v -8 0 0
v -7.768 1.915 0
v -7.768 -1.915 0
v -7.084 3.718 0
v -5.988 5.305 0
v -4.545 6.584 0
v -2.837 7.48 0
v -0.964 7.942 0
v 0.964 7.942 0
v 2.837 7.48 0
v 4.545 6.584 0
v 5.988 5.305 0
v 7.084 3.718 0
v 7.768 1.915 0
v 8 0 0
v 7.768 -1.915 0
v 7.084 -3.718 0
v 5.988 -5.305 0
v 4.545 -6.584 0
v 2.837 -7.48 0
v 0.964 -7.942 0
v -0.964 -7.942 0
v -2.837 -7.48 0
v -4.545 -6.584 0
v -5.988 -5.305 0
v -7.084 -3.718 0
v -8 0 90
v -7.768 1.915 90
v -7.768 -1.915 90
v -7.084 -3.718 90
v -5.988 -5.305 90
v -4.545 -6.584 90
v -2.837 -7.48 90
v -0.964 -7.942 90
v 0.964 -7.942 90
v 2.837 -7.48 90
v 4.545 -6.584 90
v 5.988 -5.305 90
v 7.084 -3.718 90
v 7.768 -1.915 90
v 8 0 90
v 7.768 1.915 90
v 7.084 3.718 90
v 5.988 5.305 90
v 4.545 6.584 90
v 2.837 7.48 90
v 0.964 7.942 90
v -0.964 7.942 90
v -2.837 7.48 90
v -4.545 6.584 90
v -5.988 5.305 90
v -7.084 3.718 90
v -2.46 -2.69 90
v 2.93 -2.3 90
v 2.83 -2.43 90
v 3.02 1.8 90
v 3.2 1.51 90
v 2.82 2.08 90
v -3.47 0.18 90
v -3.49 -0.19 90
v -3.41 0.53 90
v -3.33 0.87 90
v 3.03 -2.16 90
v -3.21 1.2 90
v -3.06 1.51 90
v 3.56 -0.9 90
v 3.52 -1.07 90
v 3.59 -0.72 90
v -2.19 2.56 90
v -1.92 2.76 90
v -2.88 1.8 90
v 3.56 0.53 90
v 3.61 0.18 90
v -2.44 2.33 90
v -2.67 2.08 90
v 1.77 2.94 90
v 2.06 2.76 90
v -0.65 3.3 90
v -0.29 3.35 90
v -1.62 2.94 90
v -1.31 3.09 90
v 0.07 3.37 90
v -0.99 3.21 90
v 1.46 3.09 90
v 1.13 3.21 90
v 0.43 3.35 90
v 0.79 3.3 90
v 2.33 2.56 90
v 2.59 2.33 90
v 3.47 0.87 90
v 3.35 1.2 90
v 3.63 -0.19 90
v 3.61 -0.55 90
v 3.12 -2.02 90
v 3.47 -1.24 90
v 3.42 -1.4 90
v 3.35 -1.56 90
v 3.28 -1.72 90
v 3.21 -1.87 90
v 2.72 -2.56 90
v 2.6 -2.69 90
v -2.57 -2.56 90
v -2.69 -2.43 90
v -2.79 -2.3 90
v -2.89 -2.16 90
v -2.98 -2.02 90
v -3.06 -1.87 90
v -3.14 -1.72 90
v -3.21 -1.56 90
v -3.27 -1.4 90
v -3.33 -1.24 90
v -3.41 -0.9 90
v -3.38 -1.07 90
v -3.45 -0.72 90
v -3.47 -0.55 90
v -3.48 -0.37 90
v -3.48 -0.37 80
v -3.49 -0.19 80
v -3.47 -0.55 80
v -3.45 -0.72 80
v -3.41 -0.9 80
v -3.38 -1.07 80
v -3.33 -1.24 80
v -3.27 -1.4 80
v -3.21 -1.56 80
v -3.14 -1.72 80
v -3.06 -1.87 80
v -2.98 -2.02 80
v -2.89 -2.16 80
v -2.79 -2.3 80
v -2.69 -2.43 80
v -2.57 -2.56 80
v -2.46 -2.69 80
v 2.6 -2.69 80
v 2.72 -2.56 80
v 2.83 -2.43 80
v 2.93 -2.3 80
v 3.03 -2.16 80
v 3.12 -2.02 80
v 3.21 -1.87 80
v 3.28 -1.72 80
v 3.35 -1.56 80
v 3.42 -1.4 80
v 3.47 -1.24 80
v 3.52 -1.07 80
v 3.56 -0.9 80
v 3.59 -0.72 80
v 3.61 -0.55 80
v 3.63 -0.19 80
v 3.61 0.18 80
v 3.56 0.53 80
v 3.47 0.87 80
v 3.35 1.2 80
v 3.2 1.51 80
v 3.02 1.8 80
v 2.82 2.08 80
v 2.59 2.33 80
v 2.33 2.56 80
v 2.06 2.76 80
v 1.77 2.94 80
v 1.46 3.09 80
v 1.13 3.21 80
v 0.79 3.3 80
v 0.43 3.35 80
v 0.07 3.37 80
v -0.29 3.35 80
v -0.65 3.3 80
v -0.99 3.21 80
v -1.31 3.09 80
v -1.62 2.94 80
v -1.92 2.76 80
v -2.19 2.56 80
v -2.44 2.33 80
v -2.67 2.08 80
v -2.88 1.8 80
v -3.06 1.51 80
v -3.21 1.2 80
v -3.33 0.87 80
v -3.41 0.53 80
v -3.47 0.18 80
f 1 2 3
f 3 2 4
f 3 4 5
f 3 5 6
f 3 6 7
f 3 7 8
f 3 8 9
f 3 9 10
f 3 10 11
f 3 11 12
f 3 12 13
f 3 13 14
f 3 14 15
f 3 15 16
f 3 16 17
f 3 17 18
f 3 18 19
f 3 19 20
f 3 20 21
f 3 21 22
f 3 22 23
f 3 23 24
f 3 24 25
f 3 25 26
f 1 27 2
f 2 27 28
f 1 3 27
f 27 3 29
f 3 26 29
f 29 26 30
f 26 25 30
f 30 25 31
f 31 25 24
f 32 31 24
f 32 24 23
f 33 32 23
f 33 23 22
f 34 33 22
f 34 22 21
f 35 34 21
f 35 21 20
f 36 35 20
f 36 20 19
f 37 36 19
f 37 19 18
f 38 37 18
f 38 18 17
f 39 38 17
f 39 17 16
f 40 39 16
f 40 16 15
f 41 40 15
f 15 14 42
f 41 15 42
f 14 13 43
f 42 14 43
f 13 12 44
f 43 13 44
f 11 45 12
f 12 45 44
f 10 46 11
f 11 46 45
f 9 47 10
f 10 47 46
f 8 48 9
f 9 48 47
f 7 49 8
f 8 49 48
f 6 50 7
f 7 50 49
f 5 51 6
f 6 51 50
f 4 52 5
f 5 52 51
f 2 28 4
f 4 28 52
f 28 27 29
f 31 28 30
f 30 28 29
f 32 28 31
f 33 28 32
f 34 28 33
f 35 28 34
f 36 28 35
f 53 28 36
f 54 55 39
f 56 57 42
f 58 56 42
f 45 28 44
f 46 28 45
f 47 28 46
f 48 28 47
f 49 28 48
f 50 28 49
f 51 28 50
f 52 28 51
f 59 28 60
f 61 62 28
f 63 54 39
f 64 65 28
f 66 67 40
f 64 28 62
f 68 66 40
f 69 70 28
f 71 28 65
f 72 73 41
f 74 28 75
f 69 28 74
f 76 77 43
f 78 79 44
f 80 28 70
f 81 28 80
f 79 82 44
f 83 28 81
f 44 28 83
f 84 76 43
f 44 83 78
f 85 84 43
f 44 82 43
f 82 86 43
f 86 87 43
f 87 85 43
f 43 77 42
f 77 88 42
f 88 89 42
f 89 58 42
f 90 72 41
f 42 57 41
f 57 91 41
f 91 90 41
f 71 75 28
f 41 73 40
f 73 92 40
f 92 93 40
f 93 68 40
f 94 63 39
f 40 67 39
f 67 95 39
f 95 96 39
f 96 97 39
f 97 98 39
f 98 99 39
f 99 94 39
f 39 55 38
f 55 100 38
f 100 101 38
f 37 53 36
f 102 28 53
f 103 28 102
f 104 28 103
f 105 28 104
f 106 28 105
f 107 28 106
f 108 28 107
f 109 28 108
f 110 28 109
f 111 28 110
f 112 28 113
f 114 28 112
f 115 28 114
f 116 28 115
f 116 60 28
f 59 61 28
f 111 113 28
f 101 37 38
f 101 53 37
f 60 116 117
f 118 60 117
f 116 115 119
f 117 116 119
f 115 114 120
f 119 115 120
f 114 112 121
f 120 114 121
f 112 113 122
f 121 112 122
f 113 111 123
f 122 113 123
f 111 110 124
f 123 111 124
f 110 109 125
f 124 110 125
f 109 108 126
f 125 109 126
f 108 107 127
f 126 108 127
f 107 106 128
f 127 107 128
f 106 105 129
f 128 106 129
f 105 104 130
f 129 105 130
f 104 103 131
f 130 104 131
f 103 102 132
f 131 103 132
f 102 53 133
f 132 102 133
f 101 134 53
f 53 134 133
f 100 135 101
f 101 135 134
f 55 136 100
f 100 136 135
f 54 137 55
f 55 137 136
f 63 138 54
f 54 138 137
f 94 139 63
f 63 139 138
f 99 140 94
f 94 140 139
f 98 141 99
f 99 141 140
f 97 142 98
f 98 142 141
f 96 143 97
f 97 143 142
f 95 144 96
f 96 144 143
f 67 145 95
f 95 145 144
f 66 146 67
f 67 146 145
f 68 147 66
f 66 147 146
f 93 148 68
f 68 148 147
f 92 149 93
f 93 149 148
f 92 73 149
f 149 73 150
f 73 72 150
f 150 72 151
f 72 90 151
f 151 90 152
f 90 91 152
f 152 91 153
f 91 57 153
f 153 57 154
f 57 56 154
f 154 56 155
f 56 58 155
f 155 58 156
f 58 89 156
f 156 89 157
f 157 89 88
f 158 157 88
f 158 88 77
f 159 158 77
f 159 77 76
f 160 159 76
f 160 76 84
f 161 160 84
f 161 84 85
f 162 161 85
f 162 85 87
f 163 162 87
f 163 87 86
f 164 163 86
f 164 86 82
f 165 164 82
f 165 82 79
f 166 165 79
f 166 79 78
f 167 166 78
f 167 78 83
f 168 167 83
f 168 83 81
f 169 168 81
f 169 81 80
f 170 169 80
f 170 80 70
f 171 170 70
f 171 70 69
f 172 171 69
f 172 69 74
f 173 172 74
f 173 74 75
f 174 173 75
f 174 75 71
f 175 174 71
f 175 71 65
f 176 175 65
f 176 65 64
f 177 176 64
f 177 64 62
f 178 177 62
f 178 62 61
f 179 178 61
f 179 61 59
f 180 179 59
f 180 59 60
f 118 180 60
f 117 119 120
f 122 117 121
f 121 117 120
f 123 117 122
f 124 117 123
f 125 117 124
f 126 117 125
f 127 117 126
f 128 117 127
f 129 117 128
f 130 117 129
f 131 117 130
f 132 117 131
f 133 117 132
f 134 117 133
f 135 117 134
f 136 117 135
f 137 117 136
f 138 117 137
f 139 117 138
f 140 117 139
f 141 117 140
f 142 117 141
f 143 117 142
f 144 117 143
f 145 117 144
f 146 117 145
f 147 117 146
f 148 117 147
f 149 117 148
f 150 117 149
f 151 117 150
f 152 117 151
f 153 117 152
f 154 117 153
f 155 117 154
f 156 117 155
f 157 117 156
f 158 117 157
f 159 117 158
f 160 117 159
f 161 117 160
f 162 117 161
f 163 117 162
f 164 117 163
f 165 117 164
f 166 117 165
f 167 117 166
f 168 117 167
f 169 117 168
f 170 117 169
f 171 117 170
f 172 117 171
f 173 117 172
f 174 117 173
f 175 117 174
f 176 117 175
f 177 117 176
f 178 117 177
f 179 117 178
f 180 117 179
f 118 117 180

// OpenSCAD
difference(){
cylinder(h = 90, r = 8);

translate([-29.5,60.8,80]) linear_extrude(height = 10, center = false) {

polygon(points=[[32.1,-63.49],[32.22,-63.36],[32.33,-63.23],[32.43,-63.1],[32.53,-62.96],[32.62,-62.82],[32.71,-62.67],[32.78,-62.52],[32.85,-62.36],[32.92,-62.2],[32.97,-62.04],[33.02,-61.87],[33.06,-61.7],[33.09,-61.52],[33.11,-61.35],[33.12,-61.17],[33.13,-60.99],[33.11,-60.62],[33.06,-60.27],[32.97,-59.93],[32.85,-59.6],[32.7,-59.29],[32.52,-59],[32.32,-58.72],[32.09,-58.47],[31.83,-58.24],[31.56,-58.04],[31.27,-57.86],[30.96,-57.71],[30.63,-57.59],[30.29,-57.5],[29.93,-57.45],[29.57,-57.43],[29.21,-57.45],[28.85,-57.5],[28.51,-57.59],[28.19,-57.71],[27.88,-57.86],[27.58,-58.04],[27.31,-58.24],[27.06,-58.47],[26.83,-58.72],[26.62,-59],[26.44,-59.29],[26.29,-59.6],[26.17,-59.93],[26.09,-60.27],[26.03,-60.62],[26.01,-60.99],[26.02,-61.17],[26.03,-61.35],[26.05,-61.52],[26.09,-61.7],[26.12,-61.87],[26.17,-62.04],[26.23,-62.2],[26.29,-62.36],[26.36,-62.52],[26.44,-62.67],[26.52,-62.82],[26.61,-62.96],[26.71,-63.1],[26.81,-63.23],[26.93,-63.36],[27.04,-63.49],[27.36,-63.49],[27.67,-63.49],[27.99,-63.49],[28.31,-63.49],[28.62,-63.49],[28.94,-63.49],[29.26,-63.49],[29.57,-63.49],[29.89,-63.49],[30.2,-63.49],[30.52,-63.49],[30.84,-63.49],[31.15,-63.49],[31.47,-63.49],[31.79,-63.49]]);

}
}
